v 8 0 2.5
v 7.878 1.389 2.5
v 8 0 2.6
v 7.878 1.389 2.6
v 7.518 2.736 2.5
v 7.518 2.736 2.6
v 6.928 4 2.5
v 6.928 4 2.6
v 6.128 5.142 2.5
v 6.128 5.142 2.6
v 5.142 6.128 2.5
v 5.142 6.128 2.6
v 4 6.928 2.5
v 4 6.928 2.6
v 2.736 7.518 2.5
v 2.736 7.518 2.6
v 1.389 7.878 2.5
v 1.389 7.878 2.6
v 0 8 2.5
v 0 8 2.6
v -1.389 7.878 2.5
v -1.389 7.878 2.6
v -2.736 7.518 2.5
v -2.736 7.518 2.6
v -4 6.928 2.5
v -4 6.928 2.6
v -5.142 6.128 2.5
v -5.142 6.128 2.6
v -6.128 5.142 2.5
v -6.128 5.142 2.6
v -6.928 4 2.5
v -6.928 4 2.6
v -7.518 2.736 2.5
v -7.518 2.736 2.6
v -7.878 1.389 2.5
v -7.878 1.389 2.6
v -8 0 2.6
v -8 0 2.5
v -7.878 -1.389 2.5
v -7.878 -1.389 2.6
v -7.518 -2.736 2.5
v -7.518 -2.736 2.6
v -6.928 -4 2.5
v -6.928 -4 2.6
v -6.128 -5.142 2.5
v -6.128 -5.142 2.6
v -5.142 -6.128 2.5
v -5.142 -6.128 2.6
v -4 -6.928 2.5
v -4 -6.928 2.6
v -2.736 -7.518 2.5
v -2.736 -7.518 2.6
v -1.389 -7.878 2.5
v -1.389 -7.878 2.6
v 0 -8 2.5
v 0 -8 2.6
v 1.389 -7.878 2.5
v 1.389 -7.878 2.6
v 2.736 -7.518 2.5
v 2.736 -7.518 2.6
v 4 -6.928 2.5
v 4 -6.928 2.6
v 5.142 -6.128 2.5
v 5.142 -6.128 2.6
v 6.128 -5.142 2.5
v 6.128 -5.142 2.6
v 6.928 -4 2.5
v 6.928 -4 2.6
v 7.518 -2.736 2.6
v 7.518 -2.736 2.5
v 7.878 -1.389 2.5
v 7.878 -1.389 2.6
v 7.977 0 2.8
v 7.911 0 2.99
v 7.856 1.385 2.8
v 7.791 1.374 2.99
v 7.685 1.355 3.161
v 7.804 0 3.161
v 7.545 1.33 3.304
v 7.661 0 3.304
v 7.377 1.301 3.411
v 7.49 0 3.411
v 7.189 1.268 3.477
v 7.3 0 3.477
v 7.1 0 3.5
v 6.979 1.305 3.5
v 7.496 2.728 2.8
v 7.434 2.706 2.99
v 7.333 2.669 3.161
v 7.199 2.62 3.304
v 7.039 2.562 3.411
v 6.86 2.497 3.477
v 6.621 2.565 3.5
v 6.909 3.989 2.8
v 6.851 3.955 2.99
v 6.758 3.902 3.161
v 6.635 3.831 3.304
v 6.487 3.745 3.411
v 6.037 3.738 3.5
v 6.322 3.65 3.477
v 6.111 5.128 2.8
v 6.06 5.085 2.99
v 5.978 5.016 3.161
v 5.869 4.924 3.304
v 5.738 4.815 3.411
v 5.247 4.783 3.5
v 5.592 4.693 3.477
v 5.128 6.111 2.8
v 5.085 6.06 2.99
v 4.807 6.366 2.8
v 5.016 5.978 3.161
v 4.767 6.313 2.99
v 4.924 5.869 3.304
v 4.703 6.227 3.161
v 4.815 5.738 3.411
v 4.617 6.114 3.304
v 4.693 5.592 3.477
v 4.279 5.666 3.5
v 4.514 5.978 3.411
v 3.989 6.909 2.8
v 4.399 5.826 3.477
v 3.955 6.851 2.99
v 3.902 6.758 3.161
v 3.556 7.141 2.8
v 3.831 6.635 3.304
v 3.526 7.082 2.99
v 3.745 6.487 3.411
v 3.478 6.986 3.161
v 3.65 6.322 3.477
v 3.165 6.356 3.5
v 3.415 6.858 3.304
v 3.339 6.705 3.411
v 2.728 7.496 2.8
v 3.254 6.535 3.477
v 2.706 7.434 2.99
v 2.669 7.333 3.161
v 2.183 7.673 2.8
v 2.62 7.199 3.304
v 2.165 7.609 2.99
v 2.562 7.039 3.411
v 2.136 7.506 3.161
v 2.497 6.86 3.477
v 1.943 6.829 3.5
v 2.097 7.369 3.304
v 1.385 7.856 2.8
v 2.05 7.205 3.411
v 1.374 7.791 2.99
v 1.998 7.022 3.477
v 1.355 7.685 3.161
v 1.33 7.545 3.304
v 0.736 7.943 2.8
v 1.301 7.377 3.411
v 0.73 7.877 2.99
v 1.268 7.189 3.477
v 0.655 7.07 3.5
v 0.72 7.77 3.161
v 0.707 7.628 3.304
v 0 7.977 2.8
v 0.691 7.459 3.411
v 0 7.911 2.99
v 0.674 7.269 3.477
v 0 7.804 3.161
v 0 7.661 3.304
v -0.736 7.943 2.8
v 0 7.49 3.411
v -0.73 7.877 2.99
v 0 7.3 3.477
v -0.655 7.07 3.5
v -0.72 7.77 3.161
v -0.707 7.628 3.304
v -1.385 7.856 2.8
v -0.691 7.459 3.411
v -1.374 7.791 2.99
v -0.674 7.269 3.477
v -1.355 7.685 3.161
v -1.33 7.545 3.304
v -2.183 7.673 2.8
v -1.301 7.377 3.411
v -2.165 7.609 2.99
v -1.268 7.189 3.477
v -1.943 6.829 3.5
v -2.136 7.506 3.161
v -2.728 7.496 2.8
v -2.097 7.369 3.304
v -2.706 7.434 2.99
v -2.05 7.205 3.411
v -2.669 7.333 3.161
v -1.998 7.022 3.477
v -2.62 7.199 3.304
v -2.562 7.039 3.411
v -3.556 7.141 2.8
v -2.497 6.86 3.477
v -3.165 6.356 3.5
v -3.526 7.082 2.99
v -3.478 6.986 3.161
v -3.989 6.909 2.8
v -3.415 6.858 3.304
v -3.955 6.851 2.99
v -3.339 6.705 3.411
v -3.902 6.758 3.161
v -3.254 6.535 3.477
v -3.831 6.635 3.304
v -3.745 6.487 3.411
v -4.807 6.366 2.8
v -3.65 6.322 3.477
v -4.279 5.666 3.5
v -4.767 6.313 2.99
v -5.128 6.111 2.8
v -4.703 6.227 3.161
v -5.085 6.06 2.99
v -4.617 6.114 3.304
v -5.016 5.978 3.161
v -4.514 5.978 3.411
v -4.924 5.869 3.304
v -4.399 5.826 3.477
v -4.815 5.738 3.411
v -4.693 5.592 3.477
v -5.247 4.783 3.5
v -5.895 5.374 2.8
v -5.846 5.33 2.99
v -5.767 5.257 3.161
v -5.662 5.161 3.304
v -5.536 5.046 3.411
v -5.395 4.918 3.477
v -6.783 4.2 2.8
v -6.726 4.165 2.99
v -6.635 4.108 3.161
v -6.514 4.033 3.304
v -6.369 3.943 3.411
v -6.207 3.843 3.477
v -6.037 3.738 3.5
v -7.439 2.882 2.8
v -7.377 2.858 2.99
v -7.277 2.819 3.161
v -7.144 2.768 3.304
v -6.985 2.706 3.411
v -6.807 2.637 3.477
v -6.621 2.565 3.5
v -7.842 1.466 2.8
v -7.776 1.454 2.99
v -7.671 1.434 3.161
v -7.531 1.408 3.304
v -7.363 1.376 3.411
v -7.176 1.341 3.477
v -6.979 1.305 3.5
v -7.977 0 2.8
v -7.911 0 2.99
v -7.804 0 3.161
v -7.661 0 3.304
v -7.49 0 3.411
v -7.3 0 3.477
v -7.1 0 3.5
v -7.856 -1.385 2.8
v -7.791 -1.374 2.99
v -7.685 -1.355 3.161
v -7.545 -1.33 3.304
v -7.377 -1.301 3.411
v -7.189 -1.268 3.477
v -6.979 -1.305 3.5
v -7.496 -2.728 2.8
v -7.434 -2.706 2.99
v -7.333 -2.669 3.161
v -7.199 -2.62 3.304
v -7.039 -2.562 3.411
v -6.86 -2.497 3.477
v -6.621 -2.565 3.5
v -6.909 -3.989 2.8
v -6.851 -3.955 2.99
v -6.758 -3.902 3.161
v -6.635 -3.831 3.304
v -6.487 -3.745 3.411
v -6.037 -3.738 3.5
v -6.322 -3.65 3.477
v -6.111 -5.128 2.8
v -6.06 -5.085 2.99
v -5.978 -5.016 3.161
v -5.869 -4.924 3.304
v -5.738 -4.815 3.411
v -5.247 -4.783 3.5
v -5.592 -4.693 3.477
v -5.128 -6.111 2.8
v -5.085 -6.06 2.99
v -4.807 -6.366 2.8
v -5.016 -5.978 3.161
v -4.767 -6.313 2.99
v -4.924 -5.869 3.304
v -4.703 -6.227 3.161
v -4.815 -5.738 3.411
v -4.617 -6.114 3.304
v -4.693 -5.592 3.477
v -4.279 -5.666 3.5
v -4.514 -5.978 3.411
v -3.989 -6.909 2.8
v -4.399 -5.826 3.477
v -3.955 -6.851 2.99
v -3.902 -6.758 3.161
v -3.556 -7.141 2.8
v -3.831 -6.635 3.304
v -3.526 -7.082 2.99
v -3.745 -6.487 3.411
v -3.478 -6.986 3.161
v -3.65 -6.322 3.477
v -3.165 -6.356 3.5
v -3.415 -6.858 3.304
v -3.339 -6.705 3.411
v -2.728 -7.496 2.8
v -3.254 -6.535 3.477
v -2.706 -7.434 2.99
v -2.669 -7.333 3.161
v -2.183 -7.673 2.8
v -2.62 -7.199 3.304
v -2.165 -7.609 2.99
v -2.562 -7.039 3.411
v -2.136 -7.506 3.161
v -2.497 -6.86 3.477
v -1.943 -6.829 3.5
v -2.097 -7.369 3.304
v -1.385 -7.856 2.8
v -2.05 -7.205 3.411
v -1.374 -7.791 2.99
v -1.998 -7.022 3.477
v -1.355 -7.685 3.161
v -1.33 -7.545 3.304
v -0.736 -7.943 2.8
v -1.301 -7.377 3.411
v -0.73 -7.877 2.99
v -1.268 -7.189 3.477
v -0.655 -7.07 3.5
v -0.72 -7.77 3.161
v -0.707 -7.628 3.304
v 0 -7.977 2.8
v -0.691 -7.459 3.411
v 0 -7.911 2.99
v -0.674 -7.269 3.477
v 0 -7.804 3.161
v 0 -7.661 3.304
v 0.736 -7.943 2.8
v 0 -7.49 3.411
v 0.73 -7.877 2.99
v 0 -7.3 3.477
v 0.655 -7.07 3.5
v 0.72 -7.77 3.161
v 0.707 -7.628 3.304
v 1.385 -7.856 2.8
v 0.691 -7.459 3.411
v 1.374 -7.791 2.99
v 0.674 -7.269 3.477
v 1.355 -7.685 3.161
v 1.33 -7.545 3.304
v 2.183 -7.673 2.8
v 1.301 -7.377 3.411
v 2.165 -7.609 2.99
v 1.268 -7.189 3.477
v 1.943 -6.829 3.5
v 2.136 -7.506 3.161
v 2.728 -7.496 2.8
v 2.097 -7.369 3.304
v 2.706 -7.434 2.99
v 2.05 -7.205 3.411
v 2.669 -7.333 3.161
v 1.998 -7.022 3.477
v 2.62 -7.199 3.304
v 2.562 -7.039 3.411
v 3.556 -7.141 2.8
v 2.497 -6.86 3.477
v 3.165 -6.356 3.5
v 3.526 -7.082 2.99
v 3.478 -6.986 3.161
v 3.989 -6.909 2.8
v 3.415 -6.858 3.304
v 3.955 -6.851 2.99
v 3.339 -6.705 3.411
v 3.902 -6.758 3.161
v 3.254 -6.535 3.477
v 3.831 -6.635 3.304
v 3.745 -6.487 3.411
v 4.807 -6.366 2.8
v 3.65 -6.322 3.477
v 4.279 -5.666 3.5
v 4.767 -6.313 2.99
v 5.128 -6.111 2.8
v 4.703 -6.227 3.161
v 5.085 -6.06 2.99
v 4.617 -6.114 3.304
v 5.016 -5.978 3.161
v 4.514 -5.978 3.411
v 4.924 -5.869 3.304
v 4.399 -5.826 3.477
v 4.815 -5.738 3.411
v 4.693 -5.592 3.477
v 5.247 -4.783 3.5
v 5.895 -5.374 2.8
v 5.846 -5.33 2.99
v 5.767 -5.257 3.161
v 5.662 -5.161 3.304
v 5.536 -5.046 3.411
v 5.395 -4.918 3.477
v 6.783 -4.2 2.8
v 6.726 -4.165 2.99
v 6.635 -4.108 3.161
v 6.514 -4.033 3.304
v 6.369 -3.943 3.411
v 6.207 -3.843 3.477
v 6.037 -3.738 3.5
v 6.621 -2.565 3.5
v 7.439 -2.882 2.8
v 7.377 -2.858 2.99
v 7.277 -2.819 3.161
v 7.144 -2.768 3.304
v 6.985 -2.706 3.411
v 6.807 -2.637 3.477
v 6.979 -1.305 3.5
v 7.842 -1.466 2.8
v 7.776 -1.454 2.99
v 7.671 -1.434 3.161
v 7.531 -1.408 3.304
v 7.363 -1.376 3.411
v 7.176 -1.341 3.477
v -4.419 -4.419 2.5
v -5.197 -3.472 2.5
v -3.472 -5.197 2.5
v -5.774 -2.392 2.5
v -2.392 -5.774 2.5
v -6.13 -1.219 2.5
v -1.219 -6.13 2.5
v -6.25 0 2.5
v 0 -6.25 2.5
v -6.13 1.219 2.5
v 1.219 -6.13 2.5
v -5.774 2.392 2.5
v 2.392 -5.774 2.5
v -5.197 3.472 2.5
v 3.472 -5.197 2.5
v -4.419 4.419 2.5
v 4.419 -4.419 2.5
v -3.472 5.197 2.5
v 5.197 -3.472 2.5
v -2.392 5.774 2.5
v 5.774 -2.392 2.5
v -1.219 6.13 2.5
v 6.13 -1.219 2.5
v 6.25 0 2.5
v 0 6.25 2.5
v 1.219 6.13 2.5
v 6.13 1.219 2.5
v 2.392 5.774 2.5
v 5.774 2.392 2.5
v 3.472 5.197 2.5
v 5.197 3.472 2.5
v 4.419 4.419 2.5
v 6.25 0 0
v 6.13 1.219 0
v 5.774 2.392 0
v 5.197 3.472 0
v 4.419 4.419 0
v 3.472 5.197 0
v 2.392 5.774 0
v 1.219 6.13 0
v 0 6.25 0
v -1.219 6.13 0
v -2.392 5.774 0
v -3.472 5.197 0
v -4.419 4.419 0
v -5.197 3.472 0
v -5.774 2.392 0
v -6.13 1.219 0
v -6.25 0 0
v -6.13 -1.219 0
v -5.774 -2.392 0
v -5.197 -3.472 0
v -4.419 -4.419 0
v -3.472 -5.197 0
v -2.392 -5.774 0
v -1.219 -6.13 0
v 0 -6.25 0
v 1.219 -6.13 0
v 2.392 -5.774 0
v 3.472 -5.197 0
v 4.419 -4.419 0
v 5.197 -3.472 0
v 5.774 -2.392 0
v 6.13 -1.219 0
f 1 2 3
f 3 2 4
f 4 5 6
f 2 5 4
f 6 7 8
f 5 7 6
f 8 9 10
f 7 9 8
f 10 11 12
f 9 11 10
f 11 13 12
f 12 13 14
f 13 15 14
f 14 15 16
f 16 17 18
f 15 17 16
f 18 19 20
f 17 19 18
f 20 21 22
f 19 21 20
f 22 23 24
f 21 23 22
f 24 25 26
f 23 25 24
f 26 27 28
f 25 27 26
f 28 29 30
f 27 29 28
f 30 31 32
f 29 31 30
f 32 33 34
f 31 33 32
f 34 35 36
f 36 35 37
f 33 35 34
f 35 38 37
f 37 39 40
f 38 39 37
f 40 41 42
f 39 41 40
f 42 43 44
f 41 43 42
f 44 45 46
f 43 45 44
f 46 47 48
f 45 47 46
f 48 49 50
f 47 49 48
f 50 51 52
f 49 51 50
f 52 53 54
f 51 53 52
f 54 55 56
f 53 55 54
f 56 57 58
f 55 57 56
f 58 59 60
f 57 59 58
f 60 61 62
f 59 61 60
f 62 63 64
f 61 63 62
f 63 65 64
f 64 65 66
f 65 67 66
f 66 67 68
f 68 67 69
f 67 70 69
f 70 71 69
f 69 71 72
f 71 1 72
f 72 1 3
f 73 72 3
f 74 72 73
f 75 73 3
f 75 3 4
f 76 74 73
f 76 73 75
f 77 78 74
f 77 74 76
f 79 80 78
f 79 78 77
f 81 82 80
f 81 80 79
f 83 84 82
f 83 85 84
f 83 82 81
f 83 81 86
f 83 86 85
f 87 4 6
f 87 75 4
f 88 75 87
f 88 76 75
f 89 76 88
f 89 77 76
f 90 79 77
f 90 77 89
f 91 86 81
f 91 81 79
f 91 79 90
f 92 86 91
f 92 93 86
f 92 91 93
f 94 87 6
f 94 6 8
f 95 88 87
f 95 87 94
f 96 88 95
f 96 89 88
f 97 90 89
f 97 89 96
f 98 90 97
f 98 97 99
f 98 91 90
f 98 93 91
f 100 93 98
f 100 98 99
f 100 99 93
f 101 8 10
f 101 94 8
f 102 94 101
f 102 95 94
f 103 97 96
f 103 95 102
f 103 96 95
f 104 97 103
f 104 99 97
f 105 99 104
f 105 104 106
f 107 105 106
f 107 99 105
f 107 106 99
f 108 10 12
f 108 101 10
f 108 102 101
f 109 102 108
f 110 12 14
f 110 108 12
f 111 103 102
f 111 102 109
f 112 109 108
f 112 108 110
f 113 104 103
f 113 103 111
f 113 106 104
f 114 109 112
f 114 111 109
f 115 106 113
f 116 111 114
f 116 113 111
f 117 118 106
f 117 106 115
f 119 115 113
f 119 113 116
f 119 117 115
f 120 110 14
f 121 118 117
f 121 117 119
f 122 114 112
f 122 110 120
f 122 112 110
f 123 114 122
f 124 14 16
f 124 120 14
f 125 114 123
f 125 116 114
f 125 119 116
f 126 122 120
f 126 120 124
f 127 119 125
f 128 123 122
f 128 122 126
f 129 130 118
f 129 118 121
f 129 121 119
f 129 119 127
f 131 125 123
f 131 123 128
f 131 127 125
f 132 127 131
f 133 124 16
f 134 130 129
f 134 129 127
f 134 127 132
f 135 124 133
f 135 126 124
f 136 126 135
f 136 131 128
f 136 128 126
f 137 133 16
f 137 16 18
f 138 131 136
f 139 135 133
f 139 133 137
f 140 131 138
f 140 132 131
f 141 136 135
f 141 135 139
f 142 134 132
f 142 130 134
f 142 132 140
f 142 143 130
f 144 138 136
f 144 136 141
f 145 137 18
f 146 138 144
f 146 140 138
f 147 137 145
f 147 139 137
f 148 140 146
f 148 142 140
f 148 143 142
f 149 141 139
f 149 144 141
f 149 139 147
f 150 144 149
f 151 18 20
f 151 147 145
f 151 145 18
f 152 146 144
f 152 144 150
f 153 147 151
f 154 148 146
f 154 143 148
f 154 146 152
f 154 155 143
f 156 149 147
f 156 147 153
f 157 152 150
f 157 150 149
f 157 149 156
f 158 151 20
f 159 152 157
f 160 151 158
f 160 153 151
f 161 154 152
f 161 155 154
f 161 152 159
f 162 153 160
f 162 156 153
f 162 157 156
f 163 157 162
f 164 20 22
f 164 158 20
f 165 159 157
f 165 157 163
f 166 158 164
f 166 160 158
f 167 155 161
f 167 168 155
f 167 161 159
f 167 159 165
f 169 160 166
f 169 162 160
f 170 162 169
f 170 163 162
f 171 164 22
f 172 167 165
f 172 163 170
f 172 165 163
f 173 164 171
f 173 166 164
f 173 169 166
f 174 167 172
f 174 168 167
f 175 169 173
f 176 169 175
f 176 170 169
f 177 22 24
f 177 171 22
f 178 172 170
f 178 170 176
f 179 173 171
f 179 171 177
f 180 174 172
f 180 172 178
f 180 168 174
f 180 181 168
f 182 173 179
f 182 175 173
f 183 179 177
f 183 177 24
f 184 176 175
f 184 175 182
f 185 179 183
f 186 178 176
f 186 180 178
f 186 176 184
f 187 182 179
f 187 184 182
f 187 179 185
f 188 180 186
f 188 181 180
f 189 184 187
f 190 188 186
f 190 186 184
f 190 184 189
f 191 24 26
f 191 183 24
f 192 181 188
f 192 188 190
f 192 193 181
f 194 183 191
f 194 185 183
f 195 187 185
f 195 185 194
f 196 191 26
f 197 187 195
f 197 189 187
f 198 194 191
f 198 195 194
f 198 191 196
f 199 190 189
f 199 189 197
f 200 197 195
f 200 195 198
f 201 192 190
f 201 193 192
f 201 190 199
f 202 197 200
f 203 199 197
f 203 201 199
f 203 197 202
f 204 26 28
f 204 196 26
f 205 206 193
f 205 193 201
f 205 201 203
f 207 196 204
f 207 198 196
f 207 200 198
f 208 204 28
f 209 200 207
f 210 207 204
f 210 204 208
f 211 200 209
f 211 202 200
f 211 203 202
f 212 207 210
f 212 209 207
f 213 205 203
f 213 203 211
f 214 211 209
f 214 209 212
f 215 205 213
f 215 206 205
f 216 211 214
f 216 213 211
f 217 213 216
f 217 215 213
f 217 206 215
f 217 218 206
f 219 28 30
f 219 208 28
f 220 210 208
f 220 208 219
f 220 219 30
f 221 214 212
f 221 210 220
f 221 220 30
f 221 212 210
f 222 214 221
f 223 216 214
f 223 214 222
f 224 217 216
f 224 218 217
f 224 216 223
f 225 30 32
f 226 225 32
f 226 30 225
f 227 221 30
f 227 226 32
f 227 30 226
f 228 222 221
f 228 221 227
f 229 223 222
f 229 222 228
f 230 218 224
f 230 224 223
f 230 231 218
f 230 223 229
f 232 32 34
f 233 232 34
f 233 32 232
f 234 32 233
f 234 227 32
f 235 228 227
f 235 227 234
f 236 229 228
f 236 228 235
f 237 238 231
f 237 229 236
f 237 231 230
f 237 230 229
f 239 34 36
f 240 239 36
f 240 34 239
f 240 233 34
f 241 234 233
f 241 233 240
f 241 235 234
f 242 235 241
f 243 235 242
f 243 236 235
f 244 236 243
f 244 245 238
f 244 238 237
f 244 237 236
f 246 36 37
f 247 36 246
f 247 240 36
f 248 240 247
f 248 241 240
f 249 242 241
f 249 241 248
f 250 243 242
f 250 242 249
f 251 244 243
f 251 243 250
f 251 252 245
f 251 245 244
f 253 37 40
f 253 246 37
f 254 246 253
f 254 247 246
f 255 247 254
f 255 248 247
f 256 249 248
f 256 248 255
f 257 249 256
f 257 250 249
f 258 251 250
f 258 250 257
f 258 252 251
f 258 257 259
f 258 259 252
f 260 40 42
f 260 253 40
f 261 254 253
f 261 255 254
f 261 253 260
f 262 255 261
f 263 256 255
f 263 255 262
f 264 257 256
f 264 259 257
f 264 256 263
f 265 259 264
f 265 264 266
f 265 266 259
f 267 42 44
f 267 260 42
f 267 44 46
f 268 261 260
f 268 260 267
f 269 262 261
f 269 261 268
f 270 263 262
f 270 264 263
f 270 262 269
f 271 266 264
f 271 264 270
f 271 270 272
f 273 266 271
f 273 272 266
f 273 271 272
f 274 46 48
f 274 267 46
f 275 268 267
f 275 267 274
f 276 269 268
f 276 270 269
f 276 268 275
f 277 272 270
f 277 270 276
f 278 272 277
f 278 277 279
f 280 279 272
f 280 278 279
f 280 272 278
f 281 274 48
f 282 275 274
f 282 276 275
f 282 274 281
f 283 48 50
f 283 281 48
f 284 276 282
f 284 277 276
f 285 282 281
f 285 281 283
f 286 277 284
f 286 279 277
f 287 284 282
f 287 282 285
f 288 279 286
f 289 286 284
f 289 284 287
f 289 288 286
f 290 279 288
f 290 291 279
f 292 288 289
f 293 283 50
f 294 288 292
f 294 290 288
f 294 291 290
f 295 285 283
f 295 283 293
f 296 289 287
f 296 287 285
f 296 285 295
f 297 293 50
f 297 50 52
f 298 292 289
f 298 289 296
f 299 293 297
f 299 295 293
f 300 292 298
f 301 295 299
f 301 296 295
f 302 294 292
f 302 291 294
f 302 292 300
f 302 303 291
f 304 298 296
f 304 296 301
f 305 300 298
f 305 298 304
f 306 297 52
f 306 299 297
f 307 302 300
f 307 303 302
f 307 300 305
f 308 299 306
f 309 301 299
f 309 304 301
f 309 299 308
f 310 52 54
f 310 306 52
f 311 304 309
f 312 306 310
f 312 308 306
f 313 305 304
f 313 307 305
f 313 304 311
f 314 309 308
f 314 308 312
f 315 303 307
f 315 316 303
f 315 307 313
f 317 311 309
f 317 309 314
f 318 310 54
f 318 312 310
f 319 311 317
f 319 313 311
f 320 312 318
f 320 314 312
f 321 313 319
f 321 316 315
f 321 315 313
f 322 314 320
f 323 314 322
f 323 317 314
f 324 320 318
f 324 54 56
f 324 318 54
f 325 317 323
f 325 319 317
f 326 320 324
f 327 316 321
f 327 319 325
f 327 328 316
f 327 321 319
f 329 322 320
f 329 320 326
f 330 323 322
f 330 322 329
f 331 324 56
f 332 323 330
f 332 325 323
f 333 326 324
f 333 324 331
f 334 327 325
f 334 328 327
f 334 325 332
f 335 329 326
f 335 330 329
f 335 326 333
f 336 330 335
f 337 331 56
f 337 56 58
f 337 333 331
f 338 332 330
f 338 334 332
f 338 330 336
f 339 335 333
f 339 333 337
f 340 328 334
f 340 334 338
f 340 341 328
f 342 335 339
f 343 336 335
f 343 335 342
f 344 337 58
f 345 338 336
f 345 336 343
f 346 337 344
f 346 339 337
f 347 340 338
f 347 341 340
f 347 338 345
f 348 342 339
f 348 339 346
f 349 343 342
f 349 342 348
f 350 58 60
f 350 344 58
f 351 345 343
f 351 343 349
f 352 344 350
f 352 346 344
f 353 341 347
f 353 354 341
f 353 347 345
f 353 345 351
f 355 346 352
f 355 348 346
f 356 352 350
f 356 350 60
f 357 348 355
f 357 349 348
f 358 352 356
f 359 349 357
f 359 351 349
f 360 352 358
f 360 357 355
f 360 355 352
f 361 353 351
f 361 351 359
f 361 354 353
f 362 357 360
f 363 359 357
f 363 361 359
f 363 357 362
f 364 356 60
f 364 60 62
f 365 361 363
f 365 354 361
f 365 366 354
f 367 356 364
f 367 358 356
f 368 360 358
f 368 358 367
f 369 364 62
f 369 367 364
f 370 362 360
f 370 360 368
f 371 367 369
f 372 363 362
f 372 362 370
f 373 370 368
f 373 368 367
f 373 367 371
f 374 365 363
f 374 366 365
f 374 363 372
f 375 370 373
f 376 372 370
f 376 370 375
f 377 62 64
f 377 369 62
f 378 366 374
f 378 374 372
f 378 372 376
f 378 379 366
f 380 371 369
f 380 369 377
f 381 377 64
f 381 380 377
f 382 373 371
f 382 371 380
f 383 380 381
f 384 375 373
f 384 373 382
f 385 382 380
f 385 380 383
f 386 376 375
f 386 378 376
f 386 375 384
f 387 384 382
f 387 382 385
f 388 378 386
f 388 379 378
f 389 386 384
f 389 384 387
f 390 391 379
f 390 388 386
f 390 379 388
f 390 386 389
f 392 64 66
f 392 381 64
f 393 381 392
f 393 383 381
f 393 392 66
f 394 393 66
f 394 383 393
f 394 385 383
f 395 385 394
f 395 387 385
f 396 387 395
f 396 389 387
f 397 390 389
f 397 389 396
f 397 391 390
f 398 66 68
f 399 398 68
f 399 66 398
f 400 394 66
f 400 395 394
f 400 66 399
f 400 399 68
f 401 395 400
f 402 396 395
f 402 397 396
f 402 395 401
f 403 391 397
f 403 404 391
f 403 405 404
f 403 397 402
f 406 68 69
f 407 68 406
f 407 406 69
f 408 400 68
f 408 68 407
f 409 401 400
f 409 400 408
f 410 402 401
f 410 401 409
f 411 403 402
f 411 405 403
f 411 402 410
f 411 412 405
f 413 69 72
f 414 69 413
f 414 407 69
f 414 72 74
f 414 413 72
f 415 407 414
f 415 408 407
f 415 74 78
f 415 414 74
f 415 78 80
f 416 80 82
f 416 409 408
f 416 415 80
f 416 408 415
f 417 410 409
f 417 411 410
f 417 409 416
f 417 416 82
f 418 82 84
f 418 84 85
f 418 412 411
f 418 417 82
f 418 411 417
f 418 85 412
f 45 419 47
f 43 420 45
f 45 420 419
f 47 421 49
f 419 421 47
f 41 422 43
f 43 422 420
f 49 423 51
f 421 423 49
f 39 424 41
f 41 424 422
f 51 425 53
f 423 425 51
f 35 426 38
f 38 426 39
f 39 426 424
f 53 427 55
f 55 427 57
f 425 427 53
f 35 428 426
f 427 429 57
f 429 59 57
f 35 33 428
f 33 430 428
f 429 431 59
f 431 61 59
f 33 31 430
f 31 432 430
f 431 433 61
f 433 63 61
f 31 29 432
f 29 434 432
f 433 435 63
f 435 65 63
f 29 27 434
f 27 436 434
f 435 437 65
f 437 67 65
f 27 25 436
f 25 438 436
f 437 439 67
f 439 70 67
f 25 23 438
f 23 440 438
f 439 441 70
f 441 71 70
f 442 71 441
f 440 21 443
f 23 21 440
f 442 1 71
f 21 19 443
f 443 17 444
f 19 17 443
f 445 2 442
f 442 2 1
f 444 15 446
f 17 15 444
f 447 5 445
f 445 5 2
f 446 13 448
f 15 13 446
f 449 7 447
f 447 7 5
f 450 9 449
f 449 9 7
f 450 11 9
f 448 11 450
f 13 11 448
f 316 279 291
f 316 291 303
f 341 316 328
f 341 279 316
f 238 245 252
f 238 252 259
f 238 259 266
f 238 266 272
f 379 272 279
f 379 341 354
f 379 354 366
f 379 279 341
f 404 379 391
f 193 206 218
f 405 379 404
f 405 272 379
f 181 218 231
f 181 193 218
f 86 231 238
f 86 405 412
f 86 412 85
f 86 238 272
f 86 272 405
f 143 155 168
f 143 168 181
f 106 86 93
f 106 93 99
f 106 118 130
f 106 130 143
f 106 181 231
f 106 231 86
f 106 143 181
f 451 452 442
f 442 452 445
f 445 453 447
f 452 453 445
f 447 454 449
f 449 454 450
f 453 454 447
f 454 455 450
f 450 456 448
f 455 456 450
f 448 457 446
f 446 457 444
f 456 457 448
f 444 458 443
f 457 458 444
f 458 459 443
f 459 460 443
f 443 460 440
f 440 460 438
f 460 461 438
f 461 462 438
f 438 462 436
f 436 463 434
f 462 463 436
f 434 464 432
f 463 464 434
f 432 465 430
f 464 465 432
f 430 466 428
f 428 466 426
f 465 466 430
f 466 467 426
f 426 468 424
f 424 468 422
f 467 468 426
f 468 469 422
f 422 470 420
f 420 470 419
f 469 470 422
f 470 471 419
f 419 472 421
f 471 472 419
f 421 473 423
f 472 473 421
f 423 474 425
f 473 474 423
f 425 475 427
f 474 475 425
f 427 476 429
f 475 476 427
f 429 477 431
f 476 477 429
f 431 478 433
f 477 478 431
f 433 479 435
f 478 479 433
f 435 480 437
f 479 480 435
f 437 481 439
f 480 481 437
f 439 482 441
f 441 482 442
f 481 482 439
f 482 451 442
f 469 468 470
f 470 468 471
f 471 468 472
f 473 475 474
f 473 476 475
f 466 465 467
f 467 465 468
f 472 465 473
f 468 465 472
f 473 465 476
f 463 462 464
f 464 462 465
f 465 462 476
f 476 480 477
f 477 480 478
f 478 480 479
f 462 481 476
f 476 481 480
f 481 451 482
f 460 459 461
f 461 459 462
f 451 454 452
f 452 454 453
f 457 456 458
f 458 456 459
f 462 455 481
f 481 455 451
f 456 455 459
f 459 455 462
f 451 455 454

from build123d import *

# Parameters (mm, degrees)
CYLINDER_R        = 6.25
CYLINDER_DEPTH    = 2.5
CYLINDER001_R     = 8
CYLINDER001_DEPTH = 1
FILLET_R          = 0.9


with BuildPart() as cylinder:
    # Cylinder → Cylinder (new body)
    with BuildSketch(Plane.XY):
        Circle(CYLINDER_R)
    extrude(amount=CYLINDER_DEPTH)


with BuildPart() as fillet_body:
    # Cylinder001 → Cylinder001 (new body)
    with BuildSketch(Plane.XY.offset(2.5)):
        Circle(CYLINDER001_R)
    extrude(amount=CYLINDER001_DEPTH)

    # Fusion: union Cylinder
    add(cylinder.part)

    # Fillet
    fillet_edges = [fillet_body.edges().sort_by_distance(p)[0] for p in [
        (-8, 0, 3.5),
    ]]
    fillet(fillet_edges, radius=FILLET_R)


solid = fillet_body.part
